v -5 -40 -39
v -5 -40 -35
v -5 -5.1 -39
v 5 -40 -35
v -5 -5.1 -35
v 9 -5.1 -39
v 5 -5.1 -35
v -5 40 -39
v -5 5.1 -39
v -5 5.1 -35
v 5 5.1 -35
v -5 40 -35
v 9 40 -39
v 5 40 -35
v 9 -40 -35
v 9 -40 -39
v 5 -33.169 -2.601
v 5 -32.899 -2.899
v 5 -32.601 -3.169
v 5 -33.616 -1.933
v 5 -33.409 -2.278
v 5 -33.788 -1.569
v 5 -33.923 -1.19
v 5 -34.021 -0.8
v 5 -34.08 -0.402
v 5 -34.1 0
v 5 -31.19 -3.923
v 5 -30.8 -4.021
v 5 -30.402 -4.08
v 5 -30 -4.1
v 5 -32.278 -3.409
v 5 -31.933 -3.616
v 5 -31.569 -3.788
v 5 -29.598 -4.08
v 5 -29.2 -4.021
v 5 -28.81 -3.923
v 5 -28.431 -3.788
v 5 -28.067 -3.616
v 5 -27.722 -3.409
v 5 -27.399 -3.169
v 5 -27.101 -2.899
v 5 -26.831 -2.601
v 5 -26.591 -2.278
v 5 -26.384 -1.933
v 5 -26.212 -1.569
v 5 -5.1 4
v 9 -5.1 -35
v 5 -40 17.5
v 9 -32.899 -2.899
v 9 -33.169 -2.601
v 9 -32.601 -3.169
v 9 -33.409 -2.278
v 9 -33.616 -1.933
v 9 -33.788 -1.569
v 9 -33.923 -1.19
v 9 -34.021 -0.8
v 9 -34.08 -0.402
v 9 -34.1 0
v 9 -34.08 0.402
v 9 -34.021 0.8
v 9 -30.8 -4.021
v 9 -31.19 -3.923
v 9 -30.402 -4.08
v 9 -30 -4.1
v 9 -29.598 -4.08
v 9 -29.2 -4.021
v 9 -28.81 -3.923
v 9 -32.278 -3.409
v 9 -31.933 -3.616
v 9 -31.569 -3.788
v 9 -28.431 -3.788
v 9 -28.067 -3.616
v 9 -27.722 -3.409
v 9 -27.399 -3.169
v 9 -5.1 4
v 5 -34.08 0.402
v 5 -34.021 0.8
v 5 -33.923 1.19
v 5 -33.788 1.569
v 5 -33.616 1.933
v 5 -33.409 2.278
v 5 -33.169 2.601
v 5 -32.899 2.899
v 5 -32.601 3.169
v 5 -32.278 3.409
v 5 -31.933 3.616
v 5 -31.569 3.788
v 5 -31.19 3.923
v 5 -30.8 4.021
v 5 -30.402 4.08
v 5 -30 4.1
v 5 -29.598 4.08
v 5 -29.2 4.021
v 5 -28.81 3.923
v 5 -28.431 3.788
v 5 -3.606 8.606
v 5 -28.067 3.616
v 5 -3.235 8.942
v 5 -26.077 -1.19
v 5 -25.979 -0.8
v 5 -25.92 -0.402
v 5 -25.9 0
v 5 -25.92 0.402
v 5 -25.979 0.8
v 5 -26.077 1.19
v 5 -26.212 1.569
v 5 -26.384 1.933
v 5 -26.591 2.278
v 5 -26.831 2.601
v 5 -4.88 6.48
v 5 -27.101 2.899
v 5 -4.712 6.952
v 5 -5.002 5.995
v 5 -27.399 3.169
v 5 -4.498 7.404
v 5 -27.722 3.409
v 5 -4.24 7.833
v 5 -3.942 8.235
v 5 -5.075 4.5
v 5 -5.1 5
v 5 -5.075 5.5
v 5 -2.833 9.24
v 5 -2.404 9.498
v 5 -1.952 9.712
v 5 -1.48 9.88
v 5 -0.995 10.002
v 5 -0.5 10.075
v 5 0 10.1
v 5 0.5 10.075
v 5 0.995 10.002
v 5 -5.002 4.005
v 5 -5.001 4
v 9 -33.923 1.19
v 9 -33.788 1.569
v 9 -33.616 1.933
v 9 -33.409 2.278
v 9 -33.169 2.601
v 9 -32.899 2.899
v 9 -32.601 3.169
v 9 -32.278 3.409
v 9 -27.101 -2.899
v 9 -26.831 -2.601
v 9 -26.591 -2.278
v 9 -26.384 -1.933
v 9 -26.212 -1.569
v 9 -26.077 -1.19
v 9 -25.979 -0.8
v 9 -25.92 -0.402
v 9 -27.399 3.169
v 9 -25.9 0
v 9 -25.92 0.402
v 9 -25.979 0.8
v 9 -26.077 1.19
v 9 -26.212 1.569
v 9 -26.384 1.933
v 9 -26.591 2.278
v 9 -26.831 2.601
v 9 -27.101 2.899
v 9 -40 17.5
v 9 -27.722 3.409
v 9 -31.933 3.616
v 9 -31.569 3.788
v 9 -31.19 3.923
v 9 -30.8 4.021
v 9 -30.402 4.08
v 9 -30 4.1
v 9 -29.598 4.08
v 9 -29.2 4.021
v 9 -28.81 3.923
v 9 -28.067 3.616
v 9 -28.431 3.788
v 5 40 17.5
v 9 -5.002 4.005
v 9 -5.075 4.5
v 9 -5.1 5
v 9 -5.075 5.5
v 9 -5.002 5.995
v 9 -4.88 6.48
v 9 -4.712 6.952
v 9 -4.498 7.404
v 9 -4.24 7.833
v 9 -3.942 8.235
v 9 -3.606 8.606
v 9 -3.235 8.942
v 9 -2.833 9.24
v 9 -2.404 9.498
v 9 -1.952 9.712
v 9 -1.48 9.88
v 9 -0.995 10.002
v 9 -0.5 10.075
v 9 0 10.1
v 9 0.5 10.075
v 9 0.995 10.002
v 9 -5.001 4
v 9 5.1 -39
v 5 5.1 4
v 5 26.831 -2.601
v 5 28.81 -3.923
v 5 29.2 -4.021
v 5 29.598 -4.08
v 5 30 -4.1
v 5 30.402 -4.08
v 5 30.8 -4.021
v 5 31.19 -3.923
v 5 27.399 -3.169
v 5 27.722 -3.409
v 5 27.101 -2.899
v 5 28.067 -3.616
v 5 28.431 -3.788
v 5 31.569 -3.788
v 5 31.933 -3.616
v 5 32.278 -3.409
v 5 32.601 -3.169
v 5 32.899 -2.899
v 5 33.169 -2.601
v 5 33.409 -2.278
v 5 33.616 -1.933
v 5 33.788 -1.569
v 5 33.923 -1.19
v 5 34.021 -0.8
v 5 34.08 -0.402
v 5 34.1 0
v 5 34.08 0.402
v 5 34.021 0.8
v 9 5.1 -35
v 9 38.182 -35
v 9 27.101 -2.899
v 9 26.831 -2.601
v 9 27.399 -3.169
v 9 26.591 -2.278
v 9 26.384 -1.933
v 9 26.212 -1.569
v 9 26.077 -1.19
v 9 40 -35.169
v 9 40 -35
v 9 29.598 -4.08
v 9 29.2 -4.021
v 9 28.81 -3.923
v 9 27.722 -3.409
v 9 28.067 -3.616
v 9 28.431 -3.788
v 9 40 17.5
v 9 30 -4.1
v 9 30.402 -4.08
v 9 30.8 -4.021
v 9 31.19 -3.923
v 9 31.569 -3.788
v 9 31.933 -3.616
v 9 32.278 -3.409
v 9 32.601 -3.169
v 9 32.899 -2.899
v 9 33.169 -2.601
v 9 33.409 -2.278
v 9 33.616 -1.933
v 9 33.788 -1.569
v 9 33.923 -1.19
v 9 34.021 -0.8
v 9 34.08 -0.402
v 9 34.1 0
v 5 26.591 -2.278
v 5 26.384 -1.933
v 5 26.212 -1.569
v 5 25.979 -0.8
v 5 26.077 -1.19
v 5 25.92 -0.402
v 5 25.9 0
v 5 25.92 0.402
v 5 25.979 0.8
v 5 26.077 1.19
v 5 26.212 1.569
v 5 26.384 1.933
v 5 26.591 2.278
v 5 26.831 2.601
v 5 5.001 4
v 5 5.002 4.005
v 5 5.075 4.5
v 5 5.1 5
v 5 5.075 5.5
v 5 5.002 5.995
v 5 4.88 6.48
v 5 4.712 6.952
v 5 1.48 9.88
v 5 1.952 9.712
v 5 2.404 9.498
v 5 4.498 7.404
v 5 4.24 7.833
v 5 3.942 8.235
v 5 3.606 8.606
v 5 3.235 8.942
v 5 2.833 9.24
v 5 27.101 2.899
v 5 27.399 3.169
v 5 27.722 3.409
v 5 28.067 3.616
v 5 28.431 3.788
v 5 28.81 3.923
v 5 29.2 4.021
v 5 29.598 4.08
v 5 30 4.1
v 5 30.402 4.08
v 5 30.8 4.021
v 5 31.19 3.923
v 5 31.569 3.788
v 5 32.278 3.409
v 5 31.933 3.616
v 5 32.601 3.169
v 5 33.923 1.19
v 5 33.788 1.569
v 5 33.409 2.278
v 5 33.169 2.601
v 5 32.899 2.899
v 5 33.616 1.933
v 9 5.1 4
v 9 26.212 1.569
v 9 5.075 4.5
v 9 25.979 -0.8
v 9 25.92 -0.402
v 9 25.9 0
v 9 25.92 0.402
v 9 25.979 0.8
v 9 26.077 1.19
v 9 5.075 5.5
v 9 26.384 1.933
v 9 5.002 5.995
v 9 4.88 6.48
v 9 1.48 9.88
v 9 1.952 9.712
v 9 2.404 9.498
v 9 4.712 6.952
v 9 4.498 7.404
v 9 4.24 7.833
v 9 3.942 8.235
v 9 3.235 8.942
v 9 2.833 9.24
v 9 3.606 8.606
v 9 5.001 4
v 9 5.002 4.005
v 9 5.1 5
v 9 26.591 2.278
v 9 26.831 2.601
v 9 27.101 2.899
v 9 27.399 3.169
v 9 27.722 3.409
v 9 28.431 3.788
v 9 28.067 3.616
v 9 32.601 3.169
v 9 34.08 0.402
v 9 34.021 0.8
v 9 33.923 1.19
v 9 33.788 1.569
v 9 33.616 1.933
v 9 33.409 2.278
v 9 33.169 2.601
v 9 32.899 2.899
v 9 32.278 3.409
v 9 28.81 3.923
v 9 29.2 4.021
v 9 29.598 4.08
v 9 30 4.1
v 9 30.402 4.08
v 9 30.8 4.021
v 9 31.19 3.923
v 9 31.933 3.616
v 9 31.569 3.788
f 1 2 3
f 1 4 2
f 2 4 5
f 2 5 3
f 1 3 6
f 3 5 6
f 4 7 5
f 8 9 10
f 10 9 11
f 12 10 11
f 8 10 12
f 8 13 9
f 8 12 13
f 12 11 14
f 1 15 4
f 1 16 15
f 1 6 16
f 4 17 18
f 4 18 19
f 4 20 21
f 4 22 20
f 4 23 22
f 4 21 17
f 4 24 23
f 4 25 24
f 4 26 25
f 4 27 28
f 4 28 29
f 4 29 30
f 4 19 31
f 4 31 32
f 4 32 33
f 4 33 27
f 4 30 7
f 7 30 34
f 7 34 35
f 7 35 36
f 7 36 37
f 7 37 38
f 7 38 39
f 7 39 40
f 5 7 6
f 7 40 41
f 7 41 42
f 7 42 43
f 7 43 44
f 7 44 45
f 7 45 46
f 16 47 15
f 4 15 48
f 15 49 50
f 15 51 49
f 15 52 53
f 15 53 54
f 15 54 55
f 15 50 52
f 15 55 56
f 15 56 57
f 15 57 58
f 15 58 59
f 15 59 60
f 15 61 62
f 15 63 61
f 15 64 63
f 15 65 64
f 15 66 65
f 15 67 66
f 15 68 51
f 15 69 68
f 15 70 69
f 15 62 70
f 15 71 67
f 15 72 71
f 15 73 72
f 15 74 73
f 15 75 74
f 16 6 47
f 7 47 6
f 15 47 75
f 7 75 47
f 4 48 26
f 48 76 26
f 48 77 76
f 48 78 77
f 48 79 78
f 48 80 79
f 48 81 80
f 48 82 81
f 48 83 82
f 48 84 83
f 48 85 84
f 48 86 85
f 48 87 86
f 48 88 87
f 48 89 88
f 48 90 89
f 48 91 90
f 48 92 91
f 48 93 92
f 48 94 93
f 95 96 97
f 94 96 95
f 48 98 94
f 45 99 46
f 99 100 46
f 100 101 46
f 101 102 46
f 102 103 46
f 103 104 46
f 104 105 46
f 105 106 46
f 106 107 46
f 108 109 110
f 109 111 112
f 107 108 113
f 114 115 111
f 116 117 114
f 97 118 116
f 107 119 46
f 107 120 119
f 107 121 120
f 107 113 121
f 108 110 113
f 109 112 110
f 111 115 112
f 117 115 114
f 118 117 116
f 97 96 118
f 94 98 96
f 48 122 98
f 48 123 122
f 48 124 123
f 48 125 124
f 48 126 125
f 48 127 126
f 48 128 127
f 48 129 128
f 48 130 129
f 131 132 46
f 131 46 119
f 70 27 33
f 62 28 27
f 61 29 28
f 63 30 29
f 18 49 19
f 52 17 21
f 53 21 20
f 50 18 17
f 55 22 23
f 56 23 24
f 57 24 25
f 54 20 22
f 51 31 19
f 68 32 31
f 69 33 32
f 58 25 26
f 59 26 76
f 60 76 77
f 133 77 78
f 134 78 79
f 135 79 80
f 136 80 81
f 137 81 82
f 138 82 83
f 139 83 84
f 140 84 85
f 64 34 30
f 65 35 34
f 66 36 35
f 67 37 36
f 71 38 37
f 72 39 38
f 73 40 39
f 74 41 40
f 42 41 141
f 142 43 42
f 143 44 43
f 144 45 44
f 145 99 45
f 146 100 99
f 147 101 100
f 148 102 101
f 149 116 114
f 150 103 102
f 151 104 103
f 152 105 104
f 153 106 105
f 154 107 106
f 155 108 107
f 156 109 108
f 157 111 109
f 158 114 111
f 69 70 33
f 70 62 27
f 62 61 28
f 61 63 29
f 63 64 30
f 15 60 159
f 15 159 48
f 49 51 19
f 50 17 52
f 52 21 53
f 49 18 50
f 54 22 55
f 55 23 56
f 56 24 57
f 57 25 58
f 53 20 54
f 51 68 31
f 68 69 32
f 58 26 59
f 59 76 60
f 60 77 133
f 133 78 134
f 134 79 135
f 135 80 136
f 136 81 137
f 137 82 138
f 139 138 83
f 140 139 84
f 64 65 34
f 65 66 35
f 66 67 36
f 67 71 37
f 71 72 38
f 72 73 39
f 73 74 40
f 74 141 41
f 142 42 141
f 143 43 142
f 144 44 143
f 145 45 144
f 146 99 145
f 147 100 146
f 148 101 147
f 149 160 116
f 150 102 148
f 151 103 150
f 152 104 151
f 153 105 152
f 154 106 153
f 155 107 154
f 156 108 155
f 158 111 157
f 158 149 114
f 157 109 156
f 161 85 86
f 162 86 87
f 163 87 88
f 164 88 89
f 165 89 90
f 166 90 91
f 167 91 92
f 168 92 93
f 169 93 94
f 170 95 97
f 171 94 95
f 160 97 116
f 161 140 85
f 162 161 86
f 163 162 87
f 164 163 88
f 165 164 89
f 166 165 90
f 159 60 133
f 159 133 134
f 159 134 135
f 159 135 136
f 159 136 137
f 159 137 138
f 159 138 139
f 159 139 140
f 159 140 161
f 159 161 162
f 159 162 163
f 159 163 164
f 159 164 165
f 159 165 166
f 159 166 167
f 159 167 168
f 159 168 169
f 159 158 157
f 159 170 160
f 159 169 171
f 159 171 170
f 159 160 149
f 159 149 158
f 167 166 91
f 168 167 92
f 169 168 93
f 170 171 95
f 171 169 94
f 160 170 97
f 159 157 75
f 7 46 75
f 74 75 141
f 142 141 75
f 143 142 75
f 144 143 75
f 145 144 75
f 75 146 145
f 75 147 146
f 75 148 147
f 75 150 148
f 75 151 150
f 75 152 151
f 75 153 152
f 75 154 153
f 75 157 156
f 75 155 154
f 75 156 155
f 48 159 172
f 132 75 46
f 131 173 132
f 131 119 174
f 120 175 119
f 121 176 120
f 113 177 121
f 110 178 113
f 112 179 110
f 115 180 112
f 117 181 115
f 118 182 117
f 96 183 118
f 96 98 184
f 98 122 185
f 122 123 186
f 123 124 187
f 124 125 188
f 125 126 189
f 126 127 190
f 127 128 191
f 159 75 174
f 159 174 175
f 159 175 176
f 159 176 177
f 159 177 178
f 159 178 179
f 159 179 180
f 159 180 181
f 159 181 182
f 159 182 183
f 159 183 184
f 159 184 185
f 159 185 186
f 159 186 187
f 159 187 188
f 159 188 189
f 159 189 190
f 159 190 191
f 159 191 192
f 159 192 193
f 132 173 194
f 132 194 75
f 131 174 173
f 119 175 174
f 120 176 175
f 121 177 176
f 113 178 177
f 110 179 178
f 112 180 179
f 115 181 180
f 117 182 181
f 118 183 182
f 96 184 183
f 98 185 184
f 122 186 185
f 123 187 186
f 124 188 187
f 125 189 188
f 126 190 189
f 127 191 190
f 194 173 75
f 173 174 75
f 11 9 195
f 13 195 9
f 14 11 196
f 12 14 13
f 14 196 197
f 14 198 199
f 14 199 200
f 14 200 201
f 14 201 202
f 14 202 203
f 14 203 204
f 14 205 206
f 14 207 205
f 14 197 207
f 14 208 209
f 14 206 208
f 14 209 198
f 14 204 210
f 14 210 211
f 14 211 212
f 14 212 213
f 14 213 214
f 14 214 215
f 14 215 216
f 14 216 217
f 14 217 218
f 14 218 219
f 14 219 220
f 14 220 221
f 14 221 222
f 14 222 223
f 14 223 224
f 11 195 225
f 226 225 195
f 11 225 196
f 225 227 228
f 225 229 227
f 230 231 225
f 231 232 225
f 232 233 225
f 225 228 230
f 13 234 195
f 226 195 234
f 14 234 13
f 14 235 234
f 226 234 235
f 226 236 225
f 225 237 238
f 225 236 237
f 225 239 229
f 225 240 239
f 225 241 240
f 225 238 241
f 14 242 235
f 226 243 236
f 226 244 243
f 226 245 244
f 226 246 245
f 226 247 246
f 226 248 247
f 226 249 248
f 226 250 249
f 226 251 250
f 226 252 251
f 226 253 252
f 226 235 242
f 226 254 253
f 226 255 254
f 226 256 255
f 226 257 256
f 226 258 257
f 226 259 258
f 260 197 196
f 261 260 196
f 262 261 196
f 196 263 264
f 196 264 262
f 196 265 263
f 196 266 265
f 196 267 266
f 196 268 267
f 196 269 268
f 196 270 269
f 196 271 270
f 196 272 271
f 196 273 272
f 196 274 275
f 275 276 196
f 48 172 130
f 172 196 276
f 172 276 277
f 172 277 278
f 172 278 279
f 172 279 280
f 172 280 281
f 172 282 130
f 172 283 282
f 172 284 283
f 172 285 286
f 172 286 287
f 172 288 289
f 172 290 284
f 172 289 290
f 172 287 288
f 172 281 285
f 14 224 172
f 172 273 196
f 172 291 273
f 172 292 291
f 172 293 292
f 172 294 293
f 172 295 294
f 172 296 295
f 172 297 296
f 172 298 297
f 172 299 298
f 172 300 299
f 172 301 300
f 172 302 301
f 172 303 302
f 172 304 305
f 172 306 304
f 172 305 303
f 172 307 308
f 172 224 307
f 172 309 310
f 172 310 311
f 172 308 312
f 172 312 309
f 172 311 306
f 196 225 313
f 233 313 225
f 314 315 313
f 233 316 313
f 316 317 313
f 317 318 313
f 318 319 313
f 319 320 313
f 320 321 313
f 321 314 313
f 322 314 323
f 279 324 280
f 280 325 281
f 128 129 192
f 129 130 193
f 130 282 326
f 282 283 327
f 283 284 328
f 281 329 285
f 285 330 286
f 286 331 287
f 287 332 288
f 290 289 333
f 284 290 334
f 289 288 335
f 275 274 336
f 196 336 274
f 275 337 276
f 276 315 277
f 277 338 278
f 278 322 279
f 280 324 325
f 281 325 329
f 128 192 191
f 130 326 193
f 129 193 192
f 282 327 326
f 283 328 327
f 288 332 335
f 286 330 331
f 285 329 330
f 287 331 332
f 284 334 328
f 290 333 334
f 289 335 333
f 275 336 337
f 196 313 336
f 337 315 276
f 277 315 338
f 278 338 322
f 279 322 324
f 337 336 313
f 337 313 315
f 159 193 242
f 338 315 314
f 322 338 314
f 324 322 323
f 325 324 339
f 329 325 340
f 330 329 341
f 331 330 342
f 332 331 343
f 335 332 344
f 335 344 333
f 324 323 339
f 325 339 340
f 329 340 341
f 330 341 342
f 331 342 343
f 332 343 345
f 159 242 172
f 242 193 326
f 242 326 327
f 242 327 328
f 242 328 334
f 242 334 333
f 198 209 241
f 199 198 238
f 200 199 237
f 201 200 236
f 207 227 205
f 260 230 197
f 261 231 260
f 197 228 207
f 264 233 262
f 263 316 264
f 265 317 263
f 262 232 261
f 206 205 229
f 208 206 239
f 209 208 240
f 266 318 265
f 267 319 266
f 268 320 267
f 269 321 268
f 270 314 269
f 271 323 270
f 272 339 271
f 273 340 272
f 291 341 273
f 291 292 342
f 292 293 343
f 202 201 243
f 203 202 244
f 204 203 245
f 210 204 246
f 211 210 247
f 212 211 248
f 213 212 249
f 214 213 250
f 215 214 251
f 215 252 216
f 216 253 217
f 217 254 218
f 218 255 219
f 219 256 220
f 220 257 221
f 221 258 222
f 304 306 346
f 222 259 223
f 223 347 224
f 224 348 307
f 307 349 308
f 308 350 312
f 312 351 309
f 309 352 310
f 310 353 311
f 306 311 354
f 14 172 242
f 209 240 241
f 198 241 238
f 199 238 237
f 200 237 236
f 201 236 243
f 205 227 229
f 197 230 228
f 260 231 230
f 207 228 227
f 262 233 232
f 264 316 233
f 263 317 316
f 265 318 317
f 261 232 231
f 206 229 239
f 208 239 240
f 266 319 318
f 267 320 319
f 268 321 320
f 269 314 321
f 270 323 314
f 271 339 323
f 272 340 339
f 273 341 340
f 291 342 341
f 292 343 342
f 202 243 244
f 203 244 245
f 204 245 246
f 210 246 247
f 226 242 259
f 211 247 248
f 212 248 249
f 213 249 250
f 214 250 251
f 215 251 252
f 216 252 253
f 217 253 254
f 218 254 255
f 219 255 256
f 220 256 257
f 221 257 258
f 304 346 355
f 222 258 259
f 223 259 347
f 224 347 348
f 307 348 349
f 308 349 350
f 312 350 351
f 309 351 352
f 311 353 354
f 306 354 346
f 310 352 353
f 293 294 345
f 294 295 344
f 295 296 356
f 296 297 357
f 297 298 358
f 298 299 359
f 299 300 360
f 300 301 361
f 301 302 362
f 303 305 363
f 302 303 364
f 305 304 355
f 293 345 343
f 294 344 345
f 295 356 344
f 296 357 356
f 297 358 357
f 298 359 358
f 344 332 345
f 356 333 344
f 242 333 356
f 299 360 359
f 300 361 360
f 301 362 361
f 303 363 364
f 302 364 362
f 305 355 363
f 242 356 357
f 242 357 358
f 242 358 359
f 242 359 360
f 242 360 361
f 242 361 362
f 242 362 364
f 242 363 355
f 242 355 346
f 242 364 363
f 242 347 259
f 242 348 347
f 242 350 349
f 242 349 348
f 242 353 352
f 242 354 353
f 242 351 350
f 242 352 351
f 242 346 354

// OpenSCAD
// file: ../parts/bracket_side_plate.scad
include <../config/parameters.scad>

module bracket_side_plate() {
    color("#A0A0A0") {
        difference() {
            hull() { 
                translate([0, 0, arm_height]) 
                    cube([bracket_thick, side_plate_top_width, 0.1], center=true);
                translate([0, 0, -axle_bottom_dist])
                    cube([bracket_thick, side_plate_bottom_width, 0.1], center=true);
            }

            rotate([0, 90, 0]) {
                translate([-5, 0, 0]) 
                    cylinder(d = axle_dia, h = bracket_thick + 2, center = true);
                translate([axle_bottom_dist / 2, 0, 0])
                    cube([axle_bottom_dist + 8, axle_dia, bracket_thick + 2], center = true);
            }

            rotate([0, 90, 0]) {
                translate([0, axle_hole_distance, 0])
                    cylinder(d = axle_hole_diameter, h = bracket_thick + 2, center = true);
                translate([0, -axle_hole_distance, 0])
                    cylinder(d = axle_hole_diameter, h = bracket_thick + 2, center = true);
            }
        }
    }
}

bracket_side_plate();
// file: ../config/parameters.scad
// Global Chassis Dimensions
chassis_width = 750;   
chassis_length = 1000;
drill_pattern_widths = [750, 650, 550];
drill_pattern_lengths = [750, 850, 1000];
base_plate_length = 1300;
connect_plate_thick = 10; 

// Beam Profile (Purchased Part)
beam_profile = 40;
beam_thickness = 3;    
beam_length = 1000;

// Upright & Cover
upright_height = 500;
top_side_width = 60;
cover_thick = 5;
cover_clearance = 10;  
cover_overlap = 10;
cover_total_height = 530; 

// Resolution & Preview
$fn = 60; 
exploded_view = false; 
explosion_dist = 150; 

// Motor & Wheel Data
tire_dia = 430;
tire_width = 100;
hub_dia = 160;
hub_width = 140; //specs from Quinder are: Fork width for mounting: 138mm
axle_dia = 10.2; //specs from Quinder are: Mounting hole: max 10.2mm
bolt_dia = 14.2;

// Bracket Geometry
bracket_thick = 10;
side_plate_top_width = tire_width * 2.6;
side_plate_bottom_width = 80;
axle_bottom_dist = 35;


arm_height = (tire_dia / 2) + 30;
inner_width = hub_width;
bracket_total_width = inner_width + (2 * bracket_thick);
bracket_top_z = arm_height + bracket_thick;

// Axle bracket
axle_hex_width = 80;          
axle_hex_height = 40;
axle_hex_straight_part = 25;   
axle_bracket_thickness = 8;    

axle_hole_diameter = 8.2;
axle_hole_distance = 30;

axle_flat_width = axle_dia; // Gebruikt 10.2 uit parameters 
axle_round_dia = bolt_dia;  // Gebruikt 14.2 uit parameters
// main file
// ==========================================
// LOCAL TEMPLATE CONFIG (Hardcoded)
// ==========================================
tpl_width = 80;        // Wider than the hole spacing (axle_hole_distance is 30)
tpl_height = 55;       // Tall enough to cover the axle slot and holes
tpl_thickness = 4;     // Thickness of the 3D-printed template
tpl_clearance = 0.0;   // Extra tolerance so drill/bolt does not bind in plastic

// DEBUG MODE - Set to 'false' before exporting STL
show_reference = true; 

// ==========================================
// EXTERNAL DATA (Linked)
// ==========================================
include <../config/parameters.scad>; 
use <../parts/bracket_side_plate.scad>;

// ==========================================
// GEOMETRY LOGIC
// ==========================================

module drill_template() {
    difference() {
        union() {
            translate([(bracket_thick / 2) + (tpl_thickness / 2), 0, -10])
                cube([tpl_thickness, tpl_width, tpl_height], center=true);
            
            translate([tpl_thickness / 2, 0, -axle_bottom_dist - (tpl_thickness / 2)])
                cube([bracket_thick + tpl_thickness, tpl_width, tpl_thickness], center=true);
        }

        rotate([0, 90, 0]) {
            
            translate([-5, 0, 0]) 
                cylinder(d = axle_dia + tpl_clearance, h = 50, center = true, $fn = 64);
            
            translate([axle_bottom_dist / 2, 0, 0])
                cube([axle_bottom_dist + 8, axle_dia + tpl_clearance, 50], center = true);

            translate([0, axle_hole_distance, 0])
                cylinder(d = axle_hole_diameter + tpl_clearance, h = 50, center = true, $fn = 64);

            translate([0, -axle_hole_distance, 0])
                cylinder(d = axle_hole_diameter + tpl_clearance, h = 50, center = true, $fn = 64);
        }
    }
}

// ==========================================
// RENDER
// ==========================================

color("DodgerBlue") {
    drill_template();
}

if (show_reference) {
    %bracket_side_plate(); 
}
